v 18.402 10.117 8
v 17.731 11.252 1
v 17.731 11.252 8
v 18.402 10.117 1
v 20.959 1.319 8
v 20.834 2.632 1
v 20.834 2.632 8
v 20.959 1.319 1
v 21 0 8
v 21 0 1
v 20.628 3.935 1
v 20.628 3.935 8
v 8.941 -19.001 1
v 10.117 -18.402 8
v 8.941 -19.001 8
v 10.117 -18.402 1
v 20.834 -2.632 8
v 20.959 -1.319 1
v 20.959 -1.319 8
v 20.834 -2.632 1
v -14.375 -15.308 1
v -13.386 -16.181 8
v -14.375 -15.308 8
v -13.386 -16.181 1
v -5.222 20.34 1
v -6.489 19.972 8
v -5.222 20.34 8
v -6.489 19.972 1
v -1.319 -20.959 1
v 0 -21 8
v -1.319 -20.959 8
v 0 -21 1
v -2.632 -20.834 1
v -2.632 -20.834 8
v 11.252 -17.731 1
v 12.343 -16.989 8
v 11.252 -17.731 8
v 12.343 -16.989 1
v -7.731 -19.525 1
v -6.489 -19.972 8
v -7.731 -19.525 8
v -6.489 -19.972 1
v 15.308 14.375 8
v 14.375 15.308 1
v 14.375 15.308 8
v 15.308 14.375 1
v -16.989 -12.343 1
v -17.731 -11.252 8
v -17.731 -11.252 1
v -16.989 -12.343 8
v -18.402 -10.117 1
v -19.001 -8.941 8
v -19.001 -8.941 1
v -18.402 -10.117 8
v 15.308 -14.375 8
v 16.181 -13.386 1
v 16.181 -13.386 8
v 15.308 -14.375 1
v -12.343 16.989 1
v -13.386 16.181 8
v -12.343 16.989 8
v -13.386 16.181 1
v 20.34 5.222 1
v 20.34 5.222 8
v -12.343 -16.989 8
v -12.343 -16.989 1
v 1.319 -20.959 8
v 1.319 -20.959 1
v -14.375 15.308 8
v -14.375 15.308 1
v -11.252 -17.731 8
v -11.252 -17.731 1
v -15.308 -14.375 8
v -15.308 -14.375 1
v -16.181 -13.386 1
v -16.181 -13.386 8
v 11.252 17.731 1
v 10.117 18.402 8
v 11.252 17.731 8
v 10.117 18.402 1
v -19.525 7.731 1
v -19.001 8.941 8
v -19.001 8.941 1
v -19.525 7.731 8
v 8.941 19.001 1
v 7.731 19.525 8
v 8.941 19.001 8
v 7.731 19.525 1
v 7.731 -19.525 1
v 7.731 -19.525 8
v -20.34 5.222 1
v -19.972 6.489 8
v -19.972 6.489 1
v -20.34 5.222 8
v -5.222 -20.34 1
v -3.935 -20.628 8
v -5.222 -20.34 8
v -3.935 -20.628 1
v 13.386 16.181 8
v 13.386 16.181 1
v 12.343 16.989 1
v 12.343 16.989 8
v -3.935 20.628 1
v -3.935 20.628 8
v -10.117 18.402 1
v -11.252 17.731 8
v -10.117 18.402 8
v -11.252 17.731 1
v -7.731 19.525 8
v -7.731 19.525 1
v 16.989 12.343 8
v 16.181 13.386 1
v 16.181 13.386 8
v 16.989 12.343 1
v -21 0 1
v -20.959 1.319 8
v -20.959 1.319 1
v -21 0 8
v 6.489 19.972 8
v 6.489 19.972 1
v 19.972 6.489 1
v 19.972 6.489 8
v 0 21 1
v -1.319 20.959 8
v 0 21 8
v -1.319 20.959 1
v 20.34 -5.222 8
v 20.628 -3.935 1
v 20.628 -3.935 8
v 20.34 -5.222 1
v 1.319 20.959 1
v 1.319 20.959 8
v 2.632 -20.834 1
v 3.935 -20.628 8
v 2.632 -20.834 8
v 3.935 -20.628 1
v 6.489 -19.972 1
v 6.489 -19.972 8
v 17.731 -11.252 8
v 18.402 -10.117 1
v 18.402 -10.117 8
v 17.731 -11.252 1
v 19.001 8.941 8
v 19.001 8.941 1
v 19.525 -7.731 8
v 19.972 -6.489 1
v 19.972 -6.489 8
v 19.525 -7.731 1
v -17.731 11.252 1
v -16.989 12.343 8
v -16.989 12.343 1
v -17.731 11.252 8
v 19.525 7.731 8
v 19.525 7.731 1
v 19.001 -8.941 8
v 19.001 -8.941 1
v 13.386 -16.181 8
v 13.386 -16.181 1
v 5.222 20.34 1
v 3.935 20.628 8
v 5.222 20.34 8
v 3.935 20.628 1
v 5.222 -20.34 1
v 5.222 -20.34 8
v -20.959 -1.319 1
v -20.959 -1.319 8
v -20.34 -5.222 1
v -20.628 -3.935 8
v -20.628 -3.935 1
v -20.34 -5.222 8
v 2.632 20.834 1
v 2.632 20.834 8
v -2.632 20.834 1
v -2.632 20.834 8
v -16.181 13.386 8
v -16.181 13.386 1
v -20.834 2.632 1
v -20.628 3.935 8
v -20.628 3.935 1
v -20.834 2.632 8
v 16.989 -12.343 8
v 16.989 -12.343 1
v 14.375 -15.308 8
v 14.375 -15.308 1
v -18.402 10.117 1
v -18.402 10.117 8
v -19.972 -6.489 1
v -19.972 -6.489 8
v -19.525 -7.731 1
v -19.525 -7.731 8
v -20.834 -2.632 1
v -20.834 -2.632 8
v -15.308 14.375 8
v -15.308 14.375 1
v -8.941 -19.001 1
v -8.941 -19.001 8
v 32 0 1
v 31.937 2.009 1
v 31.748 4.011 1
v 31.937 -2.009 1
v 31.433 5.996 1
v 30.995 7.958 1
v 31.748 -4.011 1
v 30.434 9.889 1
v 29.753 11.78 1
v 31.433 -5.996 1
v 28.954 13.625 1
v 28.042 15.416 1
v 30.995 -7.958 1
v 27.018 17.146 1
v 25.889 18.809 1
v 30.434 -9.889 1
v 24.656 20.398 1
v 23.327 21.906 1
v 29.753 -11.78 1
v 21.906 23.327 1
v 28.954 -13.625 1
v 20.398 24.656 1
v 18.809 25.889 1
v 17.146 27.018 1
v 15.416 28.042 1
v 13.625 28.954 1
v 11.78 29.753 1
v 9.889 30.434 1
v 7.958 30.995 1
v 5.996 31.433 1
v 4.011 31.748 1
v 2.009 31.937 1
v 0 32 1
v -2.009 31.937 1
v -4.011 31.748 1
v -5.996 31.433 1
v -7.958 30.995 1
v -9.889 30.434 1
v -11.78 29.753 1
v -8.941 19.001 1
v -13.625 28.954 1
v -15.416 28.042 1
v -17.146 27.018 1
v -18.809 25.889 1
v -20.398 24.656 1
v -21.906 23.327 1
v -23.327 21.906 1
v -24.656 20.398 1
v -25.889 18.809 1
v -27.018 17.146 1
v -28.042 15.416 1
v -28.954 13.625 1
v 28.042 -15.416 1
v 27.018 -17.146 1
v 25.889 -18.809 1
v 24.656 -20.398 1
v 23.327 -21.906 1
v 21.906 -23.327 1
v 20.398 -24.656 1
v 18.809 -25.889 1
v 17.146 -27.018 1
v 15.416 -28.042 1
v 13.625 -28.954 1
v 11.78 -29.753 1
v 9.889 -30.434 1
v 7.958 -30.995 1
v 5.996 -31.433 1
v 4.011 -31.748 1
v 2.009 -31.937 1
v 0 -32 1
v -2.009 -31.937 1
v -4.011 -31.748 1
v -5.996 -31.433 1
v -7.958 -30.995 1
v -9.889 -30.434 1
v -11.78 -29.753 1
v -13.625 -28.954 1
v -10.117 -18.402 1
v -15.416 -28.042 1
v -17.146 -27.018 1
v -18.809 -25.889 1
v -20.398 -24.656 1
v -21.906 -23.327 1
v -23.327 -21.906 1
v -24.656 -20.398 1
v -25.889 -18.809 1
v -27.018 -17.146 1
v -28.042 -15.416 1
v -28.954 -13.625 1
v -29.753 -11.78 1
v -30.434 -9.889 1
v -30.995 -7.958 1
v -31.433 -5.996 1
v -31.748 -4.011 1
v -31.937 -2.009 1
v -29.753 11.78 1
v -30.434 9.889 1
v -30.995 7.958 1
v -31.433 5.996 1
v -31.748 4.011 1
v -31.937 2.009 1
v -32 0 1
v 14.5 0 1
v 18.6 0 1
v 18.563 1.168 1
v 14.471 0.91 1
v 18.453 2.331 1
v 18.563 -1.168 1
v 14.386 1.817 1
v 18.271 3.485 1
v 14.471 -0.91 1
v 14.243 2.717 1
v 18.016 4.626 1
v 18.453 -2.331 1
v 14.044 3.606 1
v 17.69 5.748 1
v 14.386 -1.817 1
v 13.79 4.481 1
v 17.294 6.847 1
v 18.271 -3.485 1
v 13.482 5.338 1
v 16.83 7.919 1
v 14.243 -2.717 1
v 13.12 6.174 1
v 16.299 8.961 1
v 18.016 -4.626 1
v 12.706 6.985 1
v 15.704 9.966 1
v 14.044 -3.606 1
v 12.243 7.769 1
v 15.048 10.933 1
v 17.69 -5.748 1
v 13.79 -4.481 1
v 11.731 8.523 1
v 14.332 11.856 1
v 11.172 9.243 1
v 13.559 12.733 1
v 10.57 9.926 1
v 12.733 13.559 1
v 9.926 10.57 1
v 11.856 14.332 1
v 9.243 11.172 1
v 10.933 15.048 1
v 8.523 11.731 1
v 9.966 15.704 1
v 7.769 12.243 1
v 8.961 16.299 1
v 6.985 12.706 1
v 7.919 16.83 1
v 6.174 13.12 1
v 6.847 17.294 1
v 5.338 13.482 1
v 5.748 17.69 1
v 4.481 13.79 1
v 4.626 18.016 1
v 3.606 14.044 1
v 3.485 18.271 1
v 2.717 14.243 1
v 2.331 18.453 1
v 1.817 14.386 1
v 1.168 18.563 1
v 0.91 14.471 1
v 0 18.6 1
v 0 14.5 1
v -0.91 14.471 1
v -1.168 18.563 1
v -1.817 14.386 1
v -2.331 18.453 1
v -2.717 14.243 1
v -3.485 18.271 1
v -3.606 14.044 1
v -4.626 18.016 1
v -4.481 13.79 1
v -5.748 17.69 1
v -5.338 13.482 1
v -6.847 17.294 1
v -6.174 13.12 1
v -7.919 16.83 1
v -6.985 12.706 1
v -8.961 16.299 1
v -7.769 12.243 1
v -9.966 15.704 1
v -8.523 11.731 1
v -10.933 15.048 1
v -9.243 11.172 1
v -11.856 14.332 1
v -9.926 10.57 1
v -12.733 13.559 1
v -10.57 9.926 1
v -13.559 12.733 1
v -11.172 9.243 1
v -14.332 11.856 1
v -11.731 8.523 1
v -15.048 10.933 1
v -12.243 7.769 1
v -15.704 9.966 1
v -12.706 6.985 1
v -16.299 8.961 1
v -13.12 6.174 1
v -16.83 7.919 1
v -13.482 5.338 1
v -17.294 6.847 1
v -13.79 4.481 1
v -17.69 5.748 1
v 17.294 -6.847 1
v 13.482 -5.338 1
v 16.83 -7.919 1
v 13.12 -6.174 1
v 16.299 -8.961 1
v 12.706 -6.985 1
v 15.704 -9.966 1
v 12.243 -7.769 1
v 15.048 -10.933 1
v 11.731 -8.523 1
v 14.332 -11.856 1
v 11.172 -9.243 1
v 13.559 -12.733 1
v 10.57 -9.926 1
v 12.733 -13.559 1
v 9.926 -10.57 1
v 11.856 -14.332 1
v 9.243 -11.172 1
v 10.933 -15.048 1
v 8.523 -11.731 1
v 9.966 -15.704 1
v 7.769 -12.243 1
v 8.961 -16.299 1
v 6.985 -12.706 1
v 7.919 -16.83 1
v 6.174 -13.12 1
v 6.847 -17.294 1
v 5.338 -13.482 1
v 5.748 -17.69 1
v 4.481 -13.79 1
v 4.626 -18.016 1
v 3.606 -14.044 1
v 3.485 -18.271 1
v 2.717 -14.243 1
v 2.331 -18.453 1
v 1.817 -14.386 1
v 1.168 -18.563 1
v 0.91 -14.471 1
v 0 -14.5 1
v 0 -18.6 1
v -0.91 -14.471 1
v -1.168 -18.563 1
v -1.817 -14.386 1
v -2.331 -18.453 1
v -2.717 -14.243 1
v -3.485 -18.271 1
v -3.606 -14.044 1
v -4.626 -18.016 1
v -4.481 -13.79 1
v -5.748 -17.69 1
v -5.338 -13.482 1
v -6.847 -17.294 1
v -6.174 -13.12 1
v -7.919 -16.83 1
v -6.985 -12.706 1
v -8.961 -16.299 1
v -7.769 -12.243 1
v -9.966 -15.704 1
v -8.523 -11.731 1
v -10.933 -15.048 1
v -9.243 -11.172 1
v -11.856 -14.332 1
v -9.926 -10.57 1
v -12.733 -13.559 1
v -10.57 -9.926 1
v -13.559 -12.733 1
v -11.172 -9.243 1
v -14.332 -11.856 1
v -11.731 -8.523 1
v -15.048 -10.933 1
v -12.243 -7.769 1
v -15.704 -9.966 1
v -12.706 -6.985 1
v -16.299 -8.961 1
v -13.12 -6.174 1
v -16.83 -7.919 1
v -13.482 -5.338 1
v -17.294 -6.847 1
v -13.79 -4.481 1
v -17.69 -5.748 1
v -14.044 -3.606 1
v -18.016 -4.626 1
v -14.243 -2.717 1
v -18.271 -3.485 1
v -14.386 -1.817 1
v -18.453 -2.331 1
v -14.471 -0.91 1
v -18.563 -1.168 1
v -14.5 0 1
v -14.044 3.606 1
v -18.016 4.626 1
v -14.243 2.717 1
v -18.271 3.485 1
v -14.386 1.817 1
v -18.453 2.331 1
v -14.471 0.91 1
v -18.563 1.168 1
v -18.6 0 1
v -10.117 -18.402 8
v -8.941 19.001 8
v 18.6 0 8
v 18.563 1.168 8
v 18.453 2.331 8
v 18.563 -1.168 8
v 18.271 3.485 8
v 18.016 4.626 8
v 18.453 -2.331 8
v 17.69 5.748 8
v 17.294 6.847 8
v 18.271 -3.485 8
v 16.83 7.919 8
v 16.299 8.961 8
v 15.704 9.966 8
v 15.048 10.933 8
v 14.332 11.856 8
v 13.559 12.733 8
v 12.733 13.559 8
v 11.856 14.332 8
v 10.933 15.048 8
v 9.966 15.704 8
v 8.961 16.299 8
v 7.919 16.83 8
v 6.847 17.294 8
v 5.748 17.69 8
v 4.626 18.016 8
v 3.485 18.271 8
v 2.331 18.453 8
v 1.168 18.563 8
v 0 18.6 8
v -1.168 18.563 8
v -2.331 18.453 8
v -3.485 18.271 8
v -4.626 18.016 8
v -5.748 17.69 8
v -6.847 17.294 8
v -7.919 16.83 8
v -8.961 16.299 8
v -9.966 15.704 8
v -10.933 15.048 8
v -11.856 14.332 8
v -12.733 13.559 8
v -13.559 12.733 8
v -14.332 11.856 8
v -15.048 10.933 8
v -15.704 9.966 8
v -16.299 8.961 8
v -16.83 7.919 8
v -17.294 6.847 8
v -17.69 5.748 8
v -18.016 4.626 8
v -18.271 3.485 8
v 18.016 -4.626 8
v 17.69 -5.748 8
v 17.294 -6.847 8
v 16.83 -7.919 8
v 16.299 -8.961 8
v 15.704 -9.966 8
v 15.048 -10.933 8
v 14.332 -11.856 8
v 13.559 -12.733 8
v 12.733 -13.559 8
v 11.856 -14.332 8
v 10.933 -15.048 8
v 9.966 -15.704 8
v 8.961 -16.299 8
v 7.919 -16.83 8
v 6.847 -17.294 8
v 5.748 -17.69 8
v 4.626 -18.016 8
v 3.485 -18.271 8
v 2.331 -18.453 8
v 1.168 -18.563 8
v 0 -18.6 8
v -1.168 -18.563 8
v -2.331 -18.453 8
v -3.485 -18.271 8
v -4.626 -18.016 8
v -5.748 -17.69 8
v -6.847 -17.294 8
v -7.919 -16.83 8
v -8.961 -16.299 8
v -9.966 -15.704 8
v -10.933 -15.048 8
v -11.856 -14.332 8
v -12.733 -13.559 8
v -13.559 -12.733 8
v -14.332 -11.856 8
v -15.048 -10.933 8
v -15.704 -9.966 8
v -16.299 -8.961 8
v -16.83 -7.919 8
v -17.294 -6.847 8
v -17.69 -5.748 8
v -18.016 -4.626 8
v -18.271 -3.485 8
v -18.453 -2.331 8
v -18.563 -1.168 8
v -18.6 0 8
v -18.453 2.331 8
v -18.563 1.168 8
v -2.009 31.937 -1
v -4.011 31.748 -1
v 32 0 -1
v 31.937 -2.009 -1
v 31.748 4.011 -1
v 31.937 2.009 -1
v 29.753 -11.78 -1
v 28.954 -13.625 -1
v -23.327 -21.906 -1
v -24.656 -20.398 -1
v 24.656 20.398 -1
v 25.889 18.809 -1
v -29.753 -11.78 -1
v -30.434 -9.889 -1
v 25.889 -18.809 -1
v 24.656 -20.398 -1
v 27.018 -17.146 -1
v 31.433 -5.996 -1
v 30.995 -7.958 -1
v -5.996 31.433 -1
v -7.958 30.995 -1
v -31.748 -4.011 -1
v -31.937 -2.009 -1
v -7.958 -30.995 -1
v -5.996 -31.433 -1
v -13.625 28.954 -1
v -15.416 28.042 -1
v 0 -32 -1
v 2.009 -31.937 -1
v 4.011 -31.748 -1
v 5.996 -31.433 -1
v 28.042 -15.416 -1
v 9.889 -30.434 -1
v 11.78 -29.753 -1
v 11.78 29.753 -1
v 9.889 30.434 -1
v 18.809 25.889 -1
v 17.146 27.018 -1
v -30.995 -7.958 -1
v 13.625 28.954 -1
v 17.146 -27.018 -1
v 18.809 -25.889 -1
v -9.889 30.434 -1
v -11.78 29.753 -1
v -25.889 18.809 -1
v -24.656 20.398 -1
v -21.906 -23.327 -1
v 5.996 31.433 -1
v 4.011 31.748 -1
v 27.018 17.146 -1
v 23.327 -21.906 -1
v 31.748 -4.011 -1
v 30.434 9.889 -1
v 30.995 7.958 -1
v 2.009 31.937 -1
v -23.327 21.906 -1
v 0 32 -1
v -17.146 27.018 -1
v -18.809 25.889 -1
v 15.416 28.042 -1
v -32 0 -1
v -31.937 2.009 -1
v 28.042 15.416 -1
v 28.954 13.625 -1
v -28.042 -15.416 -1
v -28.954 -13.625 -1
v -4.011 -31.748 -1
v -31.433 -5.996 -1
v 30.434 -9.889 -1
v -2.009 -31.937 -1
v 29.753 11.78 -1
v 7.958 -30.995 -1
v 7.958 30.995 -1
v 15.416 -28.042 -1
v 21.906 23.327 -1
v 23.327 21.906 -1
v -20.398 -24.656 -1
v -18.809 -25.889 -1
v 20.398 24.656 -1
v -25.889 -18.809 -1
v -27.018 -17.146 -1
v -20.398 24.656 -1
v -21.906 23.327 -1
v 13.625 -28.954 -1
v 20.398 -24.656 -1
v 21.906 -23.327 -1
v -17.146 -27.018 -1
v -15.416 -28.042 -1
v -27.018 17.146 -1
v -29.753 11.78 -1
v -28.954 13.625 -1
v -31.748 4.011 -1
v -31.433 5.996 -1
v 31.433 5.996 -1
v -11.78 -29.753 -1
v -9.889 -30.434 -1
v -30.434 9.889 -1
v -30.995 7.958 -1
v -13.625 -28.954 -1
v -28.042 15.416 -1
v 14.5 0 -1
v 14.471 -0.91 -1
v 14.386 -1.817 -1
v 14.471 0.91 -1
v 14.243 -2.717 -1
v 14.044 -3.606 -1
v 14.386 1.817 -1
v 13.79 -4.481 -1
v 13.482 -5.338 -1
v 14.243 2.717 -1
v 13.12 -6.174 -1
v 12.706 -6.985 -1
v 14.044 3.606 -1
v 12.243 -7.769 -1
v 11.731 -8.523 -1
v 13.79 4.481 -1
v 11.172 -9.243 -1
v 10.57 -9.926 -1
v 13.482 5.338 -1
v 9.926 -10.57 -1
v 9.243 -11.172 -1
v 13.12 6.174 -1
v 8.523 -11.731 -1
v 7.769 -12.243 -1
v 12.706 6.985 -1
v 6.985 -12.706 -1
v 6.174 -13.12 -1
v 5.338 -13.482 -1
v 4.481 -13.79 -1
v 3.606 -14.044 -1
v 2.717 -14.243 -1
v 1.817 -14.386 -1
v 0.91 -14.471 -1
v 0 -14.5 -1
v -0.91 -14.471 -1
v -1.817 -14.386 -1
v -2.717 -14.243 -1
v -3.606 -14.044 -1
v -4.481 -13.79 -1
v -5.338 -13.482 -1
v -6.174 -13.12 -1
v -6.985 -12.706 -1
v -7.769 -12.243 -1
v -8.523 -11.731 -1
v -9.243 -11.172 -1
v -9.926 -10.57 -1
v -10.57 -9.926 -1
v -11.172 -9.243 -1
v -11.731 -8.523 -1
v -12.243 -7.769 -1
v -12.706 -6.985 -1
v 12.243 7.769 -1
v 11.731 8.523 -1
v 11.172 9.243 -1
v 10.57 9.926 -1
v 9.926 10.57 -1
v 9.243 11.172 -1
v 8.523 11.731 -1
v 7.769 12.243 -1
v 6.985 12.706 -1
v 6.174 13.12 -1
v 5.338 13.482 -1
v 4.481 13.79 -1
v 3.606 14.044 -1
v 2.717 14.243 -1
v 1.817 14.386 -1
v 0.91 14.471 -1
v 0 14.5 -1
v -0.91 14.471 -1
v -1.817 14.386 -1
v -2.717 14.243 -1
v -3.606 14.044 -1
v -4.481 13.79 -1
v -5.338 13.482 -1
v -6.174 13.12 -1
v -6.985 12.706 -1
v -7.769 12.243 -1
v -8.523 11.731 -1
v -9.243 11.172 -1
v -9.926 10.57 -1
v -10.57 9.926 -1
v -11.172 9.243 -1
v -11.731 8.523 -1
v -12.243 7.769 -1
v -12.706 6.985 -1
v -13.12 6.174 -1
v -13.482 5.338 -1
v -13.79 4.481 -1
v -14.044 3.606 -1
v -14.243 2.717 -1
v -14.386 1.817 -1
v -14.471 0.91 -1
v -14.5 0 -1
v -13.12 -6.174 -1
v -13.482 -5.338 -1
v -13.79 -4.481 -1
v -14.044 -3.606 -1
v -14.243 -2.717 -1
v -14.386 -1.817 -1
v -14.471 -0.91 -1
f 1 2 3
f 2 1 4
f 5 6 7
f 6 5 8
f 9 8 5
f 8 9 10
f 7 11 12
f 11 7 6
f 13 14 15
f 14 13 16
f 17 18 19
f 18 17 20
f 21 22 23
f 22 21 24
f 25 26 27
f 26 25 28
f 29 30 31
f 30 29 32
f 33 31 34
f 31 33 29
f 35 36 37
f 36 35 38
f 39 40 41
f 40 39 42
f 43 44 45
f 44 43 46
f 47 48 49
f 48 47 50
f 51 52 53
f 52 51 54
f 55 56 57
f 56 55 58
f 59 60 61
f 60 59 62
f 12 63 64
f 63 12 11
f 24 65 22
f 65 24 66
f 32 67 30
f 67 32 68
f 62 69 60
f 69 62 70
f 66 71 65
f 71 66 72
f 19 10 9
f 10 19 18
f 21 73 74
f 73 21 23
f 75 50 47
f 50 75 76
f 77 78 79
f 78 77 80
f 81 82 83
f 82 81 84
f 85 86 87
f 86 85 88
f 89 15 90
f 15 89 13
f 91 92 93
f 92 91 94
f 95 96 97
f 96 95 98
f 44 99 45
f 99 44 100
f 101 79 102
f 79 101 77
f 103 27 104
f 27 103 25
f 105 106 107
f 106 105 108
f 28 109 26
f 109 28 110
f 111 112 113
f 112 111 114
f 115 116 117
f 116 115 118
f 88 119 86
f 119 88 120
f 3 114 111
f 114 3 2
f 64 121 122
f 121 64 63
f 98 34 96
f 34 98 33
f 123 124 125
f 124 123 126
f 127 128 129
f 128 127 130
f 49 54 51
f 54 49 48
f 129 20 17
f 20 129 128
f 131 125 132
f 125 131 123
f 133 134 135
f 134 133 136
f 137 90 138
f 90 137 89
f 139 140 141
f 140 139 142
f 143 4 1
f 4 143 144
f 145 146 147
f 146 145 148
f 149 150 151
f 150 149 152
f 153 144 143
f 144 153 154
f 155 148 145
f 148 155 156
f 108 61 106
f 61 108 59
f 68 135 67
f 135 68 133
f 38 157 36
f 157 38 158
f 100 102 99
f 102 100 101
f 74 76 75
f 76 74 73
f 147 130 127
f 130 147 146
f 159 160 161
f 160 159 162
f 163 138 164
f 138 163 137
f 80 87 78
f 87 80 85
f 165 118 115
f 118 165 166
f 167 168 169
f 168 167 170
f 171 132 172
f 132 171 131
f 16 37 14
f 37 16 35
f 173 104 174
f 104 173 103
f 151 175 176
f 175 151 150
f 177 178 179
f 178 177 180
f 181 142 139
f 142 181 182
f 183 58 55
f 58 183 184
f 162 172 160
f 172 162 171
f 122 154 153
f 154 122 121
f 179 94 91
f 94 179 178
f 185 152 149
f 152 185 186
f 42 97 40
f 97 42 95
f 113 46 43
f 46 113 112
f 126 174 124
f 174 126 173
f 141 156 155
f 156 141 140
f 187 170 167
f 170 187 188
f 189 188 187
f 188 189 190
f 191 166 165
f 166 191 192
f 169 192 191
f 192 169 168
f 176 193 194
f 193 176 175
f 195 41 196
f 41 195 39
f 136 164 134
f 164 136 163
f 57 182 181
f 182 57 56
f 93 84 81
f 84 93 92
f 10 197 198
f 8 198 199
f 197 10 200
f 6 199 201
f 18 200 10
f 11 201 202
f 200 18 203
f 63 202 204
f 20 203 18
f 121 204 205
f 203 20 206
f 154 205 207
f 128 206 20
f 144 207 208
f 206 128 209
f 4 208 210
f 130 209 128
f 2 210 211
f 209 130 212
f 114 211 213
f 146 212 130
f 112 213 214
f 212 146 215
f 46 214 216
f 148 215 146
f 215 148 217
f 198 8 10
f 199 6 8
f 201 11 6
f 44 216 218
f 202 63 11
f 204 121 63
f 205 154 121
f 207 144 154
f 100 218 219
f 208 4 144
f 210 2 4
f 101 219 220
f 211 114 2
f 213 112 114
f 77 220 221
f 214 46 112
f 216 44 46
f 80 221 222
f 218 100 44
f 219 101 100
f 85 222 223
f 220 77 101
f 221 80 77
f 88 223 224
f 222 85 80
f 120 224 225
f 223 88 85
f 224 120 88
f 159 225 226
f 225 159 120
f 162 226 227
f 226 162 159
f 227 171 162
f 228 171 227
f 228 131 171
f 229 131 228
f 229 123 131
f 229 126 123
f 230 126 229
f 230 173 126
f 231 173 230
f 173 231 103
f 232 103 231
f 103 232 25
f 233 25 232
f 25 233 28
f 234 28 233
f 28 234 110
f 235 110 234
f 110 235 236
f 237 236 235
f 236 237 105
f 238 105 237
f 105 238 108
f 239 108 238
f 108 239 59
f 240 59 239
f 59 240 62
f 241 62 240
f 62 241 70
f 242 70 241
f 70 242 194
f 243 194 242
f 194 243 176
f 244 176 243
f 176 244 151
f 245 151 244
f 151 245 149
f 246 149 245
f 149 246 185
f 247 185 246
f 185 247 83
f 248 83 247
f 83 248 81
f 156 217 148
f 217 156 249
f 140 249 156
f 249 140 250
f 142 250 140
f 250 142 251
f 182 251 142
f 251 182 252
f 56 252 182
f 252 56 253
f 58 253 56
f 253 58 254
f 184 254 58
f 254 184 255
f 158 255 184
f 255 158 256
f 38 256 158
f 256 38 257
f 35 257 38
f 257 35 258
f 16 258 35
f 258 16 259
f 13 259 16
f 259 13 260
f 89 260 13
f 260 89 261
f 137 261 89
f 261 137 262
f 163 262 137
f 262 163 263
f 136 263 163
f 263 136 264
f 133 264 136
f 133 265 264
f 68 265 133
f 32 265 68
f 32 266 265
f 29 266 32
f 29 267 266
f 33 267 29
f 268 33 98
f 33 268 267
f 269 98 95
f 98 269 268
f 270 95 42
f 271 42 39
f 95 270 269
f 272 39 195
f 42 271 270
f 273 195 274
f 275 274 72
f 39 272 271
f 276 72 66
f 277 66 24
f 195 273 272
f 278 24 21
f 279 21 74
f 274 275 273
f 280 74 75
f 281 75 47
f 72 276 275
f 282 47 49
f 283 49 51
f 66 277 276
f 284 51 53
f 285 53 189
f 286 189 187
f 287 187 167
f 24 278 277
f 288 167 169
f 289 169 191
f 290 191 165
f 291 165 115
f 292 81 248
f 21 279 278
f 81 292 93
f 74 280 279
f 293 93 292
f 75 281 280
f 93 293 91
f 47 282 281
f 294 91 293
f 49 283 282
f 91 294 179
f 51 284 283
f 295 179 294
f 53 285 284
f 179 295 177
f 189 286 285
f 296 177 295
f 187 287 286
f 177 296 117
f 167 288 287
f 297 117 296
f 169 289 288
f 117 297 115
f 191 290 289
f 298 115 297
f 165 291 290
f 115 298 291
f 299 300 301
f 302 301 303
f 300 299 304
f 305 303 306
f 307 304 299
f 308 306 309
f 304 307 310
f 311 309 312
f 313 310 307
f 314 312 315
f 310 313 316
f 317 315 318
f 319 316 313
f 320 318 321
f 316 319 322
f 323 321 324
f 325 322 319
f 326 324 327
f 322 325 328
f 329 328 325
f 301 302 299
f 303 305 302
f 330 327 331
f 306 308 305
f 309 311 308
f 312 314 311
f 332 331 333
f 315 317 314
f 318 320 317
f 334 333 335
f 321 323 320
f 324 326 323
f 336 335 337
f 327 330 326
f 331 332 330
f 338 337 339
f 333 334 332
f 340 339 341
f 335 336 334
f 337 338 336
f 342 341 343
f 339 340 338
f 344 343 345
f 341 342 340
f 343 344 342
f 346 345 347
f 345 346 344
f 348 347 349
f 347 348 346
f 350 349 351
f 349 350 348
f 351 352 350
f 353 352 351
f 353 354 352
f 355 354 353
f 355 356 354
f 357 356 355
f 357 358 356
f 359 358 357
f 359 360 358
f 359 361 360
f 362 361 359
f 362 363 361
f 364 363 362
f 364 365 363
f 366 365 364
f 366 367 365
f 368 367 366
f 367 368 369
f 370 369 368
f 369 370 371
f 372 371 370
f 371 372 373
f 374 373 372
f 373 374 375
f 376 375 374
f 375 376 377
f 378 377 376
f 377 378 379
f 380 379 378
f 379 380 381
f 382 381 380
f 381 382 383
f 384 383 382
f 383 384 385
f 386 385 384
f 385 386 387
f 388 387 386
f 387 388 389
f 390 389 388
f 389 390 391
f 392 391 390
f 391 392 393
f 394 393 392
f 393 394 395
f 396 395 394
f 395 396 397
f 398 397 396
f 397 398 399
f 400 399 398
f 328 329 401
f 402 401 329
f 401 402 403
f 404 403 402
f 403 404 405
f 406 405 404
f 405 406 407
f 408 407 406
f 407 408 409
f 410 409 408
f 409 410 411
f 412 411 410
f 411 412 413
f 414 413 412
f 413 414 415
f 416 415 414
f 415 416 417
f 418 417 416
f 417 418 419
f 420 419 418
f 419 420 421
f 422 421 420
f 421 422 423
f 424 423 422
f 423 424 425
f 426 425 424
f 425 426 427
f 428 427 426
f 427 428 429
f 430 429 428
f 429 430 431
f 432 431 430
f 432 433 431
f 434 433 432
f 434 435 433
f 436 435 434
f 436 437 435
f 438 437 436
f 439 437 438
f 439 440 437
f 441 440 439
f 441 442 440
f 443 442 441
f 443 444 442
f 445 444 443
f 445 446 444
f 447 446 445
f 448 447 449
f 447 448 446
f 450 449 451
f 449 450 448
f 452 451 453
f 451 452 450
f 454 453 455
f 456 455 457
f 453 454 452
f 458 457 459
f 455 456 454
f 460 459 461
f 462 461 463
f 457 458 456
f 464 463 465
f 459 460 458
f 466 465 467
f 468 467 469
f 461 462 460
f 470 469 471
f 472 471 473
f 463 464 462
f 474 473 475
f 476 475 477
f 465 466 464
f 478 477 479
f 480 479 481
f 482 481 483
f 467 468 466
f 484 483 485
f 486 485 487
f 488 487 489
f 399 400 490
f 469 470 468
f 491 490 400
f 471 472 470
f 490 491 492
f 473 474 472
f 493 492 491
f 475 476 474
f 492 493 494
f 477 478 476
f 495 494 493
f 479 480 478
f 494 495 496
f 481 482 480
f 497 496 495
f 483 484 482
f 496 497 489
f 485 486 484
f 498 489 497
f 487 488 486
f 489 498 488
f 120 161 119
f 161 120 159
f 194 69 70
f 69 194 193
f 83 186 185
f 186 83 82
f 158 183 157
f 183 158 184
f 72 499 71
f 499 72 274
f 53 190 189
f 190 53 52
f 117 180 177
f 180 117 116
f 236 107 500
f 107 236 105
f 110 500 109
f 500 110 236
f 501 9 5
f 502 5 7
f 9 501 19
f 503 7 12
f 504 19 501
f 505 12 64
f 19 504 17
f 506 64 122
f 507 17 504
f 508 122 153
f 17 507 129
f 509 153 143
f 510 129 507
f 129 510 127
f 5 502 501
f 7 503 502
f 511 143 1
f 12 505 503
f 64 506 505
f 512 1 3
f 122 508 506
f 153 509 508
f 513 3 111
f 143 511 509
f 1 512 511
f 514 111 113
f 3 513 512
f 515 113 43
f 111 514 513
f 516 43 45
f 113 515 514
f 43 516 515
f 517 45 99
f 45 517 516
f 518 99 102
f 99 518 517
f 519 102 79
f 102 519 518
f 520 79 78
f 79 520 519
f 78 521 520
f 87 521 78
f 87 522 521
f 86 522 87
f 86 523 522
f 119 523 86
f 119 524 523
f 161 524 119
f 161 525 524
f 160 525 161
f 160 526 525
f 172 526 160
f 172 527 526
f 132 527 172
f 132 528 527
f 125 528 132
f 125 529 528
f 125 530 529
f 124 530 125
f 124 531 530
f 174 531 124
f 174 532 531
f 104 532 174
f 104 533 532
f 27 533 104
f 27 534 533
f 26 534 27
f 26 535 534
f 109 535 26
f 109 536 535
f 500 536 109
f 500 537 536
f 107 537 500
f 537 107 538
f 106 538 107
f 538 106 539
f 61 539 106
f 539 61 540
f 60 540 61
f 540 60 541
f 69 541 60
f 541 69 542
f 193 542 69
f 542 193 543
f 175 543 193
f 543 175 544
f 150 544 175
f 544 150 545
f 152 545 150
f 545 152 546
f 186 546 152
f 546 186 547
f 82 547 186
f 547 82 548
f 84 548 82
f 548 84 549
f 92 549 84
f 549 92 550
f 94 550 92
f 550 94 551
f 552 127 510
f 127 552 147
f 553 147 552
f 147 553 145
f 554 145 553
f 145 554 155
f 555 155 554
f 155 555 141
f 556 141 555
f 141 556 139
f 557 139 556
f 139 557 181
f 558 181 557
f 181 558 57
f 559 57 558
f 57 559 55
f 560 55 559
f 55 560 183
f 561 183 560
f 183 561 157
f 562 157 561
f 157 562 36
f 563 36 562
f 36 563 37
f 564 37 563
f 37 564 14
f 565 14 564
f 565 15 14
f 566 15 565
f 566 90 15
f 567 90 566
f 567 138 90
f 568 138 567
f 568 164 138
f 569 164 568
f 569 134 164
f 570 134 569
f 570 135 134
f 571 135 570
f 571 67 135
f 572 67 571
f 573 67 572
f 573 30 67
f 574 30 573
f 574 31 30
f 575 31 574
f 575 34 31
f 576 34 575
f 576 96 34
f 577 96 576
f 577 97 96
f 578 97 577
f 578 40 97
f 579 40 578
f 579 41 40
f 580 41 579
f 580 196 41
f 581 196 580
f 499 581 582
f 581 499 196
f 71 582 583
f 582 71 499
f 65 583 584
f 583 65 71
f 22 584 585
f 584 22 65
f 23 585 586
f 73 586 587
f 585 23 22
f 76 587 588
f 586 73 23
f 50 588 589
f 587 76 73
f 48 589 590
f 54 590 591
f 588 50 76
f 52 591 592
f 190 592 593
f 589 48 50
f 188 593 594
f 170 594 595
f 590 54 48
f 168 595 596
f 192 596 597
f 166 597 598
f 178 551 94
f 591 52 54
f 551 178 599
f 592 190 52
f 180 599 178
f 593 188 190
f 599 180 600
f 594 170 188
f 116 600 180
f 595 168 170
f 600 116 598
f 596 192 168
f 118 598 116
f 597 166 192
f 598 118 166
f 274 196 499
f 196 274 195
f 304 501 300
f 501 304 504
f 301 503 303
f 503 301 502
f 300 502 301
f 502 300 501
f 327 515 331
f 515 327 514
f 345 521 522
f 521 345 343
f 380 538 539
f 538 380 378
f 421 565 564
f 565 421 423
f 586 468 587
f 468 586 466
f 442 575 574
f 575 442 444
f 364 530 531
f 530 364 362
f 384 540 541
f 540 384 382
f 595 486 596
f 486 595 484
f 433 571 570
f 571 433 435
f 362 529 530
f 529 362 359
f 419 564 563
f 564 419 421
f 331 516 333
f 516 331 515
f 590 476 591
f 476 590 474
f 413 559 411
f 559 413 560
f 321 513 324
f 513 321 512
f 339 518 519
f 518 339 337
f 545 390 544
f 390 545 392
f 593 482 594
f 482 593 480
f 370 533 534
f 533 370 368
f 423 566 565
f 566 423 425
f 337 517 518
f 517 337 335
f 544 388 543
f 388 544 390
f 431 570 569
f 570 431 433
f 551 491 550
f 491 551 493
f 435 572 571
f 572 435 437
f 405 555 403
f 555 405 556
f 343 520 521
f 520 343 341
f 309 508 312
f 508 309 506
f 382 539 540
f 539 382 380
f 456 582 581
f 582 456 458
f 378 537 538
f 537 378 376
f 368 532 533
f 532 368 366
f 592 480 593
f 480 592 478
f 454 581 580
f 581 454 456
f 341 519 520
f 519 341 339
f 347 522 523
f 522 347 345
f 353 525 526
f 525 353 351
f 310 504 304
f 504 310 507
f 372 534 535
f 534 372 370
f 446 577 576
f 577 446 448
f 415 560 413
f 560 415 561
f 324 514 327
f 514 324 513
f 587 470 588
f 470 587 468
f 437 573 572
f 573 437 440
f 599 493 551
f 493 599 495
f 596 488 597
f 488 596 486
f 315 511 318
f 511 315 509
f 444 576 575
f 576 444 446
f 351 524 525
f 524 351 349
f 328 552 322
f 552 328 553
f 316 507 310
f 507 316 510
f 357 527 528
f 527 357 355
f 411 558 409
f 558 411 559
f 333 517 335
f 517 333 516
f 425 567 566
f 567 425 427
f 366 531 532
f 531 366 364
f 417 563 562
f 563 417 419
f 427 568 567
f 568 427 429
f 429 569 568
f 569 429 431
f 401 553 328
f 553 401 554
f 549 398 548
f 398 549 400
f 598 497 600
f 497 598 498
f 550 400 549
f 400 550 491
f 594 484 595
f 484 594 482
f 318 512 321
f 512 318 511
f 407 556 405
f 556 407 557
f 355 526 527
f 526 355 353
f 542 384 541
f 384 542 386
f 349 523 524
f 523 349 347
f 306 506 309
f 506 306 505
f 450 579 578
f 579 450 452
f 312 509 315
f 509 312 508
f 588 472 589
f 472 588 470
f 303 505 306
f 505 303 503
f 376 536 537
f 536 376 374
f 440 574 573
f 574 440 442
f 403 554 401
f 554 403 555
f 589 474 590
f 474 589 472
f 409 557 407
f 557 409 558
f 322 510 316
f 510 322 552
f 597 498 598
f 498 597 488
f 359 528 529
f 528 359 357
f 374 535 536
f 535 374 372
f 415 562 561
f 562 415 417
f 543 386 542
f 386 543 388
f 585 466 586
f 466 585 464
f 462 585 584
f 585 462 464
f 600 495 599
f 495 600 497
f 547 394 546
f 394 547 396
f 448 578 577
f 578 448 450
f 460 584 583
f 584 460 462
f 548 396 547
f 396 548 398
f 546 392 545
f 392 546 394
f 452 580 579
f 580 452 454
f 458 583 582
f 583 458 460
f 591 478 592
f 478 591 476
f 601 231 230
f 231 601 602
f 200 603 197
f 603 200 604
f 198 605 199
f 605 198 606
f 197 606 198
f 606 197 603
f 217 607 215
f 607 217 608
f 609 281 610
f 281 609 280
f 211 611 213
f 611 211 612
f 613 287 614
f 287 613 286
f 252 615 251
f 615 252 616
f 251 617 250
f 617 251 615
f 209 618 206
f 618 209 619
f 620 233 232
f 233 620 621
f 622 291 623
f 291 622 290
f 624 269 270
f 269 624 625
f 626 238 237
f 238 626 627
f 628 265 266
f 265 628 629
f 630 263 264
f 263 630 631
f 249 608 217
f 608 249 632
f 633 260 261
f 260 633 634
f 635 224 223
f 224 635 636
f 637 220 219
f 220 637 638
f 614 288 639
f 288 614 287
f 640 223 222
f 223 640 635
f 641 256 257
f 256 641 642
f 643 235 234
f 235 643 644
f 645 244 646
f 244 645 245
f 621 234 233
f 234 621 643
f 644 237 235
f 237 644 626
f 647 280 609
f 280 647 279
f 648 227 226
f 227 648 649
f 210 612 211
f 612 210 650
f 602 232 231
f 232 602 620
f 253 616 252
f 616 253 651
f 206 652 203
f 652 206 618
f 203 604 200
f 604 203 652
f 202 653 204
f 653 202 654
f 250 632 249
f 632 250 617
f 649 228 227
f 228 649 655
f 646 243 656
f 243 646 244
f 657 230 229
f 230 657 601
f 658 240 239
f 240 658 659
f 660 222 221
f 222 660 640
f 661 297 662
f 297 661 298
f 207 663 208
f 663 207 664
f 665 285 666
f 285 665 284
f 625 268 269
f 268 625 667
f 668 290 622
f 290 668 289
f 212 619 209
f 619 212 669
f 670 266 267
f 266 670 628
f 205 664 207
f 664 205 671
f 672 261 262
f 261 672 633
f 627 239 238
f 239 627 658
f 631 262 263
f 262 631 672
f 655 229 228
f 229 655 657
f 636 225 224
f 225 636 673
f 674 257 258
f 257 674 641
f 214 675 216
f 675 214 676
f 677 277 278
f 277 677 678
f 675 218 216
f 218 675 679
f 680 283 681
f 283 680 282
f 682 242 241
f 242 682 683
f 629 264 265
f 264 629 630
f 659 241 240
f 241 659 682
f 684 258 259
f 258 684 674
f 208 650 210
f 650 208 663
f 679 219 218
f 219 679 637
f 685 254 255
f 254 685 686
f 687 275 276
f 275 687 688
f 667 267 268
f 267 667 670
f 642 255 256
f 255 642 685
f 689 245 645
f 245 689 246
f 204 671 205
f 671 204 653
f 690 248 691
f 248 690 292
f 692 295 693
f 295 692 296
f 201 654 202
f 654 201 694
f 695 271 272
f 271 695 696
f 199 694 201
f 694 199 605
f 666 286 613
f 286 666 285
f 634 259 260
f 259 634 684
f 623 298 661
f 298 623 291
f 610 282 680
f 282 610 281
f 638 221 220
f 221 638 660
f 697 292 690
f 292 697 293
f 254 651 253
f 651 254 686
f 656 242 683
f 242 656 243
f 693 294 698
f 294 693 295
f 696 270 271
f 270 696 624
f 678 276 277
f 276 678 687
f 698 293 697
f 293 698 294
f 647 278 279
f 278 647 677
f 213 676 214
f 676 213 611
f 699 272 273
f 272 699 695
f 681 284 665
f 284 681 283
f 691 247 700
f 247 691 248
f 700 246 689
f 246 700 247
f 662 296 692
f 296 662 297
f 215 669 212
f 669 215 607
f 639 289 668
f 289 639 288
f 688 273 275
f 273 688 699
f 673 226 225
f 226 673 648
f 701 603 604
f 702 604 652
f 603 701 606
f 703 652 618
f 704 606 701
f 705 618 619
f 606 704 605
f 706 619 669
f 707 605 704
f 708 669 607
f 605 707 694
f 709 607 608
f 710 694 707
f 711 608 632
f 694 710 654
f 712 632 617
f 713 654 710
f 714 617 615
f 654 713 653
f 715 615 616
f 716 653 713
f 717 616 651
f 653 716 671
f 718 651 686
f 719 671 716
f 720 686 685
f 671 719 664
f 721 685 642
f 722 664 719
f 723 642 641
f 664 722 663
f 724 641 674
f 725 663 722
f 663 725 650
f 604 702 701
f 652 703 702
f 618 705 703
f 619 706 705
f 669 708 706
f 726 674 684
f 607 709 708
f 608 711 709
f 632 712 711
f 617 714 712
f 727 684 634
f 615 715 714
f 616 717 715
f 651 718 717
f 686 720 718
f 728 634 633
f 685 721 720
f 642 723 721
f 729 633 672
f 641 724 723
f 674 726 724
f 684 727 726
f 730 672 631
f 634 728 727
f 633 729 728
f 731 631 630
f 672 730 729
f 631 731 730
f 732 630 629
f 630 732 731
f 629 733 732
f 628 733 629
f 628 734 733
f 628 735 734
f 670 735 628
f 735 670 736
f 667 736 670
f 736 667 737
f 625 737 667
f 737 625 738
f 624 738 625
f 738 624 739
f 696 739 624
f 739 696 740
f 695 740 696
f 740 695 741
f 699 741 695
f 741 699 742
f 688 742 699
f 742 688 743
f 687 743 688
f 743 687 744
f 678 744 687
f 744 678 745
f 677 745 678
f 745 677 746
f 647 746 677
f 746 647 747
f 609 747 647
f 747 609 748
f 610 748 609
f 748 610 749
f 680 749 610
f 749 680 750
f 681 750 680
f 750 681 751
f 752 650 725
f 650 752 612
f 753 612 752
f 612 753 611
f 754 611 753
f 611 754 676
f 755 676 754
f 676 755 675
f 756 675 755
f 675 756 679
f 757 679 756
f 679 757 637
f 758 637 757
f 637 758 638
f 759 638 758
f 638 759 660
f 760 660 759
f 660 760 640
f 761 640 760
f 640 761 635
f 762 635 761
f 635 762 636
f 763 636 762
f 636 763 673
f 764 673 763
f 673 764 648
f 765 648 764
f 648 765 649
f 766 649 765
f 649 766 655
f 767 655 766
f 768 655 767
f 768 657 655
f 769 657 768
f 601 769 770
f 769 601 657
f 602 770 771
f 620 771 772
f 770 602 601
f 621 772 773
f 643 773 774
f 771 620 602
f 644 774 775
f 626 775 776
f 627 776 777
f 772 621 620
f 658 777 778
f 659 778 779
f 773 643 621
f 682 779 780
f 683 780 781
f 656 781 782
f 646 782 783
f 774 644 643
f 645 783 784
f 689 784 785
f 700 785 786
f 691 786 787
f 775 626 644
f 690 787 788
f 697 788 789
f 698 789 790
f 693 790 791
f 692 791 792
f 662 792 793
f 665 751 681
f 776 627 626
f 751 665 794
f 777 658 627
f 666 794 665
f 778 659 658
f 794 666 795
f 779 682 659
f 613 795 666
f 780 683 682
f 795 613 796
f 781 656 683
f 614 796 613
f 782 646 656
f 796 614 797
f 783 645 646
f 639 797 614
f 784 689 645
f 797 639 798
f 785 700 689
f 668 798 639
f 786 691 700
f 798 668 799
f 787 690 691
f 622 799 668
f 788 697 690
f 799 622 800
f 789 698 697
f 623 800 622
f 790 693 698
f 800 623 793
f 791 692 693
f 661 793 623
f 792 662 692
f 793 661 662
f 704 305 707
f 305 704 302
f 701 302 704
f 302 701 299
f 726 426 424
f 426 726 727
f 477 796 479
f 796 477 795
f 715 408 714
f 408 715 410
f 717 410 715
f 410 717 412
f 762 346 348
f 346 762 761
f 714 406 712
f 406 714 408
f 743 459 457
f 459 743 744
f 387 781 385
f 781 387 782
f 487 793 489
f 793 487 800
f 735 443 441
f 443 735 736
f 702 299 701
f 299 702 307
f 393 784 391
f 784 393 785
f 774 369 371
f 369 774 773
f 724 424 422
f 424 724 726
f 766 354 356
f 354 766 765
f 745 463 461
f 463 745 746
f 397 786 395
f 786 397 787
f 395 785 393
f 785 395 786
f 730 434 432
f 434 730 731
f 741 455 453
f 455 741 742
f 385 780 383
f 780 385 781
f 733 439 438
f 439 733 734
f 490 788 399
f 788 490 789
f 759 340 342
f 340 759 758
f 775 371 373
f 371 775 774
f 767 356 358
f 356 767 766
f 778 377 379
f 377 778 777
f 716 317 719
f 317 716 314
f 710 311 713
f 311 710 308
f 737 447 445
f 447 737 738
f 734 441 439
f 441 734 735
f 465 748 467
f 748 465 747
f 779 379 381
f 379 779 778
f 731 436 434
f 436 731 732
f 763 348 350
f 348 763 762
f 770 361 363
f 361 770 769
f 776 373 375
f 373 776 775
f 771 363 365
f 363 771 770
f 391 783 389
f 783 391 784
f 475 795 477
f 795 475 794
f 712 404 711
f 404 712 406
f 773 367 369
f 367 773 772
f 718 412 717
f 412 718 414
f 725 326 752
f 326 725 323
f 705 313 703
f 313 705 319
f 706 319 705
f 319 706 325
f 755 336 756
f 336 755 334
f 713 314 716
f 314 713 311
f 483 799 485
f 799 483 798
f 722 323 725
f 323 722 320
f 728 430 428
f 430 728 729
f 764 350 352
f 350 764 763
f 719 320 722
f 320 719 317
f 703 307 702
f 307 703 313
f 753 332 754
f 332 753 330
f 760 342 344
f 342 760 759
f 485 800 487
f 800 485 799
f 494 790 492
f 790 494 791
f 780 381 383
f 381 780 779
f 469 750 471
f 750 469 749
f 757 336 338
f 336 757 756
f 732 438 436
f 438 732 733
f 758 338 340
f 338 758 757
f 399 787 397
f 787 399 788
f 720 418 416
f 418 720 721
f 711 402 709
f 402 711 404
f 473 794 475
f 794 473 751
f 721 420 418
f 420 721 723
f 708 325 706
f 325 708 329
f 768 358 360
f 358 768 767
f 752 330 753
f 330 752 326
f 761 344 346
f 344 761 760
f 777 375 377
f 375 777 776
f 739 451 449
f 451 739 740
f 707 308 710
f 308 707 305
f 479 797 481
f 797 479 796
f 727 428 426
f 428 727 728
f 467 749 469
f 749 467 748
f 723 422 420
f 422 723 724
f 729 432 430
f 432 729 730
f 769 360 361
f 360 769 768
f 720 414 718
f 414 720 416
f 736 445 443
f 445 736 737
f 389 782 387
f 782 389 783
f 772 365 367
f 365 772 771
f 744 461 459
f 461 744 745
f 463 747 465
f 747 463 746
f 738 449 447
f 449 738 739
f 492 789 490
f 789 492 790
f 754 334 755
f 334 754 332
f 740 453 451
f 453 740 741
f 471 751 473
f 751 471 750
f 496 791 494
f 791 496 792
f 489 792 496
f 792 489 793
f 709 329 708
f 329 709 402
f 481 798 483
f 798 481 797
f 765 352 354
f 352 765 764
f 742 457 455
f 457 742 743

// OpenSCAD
include <threads.scad>;

$fn = $preview ? 25 : 100;
EPSILON = 0.01;

// A simple disc to hold the glass dome pendant lights

DISC_HEIGHT = 2;
DISC_DIAMETER = 64;
DISC_HOLE_DIAMETER = 29;
TOP_RING_DIAMETER = 42;
TOP_RING_HEIGHT = 7;
TOP_RING_WIDTH = 1.2;

TOTAL_HEIGHT = DISC_HEIGHT + TOP_RING_HEIGHT;

difference() {
  union() {
    cylinder(h = DISC_HEIGHT, r = DISC_DIAMETER / 2, center = true);
    difference() {
      translate([ 0, 0, (DISC_HEIGHT + TOP_RING_HEIGHT) / 2 ]) cylinder(
          h = TOP_RING_HEIGHT, r = TOP_RING_DIAMETER / 2, center = true);
      translate([ 0, 0, (DISC_HEIGHT + TOP_RING_HEIGHT) / 2 ]) cylinder(
          h = TOP_RING_HEIGHT + EPSILON,
          r = TOP_RING_DIAMETER / 2 - (TOP_RING_WIDTH * 2), center = true);
    }
  }
  cylinder(h = TOTAL_HEIGHT * 2, r = DISC_HOLE_DIAMETER / 2, center = true);
}
